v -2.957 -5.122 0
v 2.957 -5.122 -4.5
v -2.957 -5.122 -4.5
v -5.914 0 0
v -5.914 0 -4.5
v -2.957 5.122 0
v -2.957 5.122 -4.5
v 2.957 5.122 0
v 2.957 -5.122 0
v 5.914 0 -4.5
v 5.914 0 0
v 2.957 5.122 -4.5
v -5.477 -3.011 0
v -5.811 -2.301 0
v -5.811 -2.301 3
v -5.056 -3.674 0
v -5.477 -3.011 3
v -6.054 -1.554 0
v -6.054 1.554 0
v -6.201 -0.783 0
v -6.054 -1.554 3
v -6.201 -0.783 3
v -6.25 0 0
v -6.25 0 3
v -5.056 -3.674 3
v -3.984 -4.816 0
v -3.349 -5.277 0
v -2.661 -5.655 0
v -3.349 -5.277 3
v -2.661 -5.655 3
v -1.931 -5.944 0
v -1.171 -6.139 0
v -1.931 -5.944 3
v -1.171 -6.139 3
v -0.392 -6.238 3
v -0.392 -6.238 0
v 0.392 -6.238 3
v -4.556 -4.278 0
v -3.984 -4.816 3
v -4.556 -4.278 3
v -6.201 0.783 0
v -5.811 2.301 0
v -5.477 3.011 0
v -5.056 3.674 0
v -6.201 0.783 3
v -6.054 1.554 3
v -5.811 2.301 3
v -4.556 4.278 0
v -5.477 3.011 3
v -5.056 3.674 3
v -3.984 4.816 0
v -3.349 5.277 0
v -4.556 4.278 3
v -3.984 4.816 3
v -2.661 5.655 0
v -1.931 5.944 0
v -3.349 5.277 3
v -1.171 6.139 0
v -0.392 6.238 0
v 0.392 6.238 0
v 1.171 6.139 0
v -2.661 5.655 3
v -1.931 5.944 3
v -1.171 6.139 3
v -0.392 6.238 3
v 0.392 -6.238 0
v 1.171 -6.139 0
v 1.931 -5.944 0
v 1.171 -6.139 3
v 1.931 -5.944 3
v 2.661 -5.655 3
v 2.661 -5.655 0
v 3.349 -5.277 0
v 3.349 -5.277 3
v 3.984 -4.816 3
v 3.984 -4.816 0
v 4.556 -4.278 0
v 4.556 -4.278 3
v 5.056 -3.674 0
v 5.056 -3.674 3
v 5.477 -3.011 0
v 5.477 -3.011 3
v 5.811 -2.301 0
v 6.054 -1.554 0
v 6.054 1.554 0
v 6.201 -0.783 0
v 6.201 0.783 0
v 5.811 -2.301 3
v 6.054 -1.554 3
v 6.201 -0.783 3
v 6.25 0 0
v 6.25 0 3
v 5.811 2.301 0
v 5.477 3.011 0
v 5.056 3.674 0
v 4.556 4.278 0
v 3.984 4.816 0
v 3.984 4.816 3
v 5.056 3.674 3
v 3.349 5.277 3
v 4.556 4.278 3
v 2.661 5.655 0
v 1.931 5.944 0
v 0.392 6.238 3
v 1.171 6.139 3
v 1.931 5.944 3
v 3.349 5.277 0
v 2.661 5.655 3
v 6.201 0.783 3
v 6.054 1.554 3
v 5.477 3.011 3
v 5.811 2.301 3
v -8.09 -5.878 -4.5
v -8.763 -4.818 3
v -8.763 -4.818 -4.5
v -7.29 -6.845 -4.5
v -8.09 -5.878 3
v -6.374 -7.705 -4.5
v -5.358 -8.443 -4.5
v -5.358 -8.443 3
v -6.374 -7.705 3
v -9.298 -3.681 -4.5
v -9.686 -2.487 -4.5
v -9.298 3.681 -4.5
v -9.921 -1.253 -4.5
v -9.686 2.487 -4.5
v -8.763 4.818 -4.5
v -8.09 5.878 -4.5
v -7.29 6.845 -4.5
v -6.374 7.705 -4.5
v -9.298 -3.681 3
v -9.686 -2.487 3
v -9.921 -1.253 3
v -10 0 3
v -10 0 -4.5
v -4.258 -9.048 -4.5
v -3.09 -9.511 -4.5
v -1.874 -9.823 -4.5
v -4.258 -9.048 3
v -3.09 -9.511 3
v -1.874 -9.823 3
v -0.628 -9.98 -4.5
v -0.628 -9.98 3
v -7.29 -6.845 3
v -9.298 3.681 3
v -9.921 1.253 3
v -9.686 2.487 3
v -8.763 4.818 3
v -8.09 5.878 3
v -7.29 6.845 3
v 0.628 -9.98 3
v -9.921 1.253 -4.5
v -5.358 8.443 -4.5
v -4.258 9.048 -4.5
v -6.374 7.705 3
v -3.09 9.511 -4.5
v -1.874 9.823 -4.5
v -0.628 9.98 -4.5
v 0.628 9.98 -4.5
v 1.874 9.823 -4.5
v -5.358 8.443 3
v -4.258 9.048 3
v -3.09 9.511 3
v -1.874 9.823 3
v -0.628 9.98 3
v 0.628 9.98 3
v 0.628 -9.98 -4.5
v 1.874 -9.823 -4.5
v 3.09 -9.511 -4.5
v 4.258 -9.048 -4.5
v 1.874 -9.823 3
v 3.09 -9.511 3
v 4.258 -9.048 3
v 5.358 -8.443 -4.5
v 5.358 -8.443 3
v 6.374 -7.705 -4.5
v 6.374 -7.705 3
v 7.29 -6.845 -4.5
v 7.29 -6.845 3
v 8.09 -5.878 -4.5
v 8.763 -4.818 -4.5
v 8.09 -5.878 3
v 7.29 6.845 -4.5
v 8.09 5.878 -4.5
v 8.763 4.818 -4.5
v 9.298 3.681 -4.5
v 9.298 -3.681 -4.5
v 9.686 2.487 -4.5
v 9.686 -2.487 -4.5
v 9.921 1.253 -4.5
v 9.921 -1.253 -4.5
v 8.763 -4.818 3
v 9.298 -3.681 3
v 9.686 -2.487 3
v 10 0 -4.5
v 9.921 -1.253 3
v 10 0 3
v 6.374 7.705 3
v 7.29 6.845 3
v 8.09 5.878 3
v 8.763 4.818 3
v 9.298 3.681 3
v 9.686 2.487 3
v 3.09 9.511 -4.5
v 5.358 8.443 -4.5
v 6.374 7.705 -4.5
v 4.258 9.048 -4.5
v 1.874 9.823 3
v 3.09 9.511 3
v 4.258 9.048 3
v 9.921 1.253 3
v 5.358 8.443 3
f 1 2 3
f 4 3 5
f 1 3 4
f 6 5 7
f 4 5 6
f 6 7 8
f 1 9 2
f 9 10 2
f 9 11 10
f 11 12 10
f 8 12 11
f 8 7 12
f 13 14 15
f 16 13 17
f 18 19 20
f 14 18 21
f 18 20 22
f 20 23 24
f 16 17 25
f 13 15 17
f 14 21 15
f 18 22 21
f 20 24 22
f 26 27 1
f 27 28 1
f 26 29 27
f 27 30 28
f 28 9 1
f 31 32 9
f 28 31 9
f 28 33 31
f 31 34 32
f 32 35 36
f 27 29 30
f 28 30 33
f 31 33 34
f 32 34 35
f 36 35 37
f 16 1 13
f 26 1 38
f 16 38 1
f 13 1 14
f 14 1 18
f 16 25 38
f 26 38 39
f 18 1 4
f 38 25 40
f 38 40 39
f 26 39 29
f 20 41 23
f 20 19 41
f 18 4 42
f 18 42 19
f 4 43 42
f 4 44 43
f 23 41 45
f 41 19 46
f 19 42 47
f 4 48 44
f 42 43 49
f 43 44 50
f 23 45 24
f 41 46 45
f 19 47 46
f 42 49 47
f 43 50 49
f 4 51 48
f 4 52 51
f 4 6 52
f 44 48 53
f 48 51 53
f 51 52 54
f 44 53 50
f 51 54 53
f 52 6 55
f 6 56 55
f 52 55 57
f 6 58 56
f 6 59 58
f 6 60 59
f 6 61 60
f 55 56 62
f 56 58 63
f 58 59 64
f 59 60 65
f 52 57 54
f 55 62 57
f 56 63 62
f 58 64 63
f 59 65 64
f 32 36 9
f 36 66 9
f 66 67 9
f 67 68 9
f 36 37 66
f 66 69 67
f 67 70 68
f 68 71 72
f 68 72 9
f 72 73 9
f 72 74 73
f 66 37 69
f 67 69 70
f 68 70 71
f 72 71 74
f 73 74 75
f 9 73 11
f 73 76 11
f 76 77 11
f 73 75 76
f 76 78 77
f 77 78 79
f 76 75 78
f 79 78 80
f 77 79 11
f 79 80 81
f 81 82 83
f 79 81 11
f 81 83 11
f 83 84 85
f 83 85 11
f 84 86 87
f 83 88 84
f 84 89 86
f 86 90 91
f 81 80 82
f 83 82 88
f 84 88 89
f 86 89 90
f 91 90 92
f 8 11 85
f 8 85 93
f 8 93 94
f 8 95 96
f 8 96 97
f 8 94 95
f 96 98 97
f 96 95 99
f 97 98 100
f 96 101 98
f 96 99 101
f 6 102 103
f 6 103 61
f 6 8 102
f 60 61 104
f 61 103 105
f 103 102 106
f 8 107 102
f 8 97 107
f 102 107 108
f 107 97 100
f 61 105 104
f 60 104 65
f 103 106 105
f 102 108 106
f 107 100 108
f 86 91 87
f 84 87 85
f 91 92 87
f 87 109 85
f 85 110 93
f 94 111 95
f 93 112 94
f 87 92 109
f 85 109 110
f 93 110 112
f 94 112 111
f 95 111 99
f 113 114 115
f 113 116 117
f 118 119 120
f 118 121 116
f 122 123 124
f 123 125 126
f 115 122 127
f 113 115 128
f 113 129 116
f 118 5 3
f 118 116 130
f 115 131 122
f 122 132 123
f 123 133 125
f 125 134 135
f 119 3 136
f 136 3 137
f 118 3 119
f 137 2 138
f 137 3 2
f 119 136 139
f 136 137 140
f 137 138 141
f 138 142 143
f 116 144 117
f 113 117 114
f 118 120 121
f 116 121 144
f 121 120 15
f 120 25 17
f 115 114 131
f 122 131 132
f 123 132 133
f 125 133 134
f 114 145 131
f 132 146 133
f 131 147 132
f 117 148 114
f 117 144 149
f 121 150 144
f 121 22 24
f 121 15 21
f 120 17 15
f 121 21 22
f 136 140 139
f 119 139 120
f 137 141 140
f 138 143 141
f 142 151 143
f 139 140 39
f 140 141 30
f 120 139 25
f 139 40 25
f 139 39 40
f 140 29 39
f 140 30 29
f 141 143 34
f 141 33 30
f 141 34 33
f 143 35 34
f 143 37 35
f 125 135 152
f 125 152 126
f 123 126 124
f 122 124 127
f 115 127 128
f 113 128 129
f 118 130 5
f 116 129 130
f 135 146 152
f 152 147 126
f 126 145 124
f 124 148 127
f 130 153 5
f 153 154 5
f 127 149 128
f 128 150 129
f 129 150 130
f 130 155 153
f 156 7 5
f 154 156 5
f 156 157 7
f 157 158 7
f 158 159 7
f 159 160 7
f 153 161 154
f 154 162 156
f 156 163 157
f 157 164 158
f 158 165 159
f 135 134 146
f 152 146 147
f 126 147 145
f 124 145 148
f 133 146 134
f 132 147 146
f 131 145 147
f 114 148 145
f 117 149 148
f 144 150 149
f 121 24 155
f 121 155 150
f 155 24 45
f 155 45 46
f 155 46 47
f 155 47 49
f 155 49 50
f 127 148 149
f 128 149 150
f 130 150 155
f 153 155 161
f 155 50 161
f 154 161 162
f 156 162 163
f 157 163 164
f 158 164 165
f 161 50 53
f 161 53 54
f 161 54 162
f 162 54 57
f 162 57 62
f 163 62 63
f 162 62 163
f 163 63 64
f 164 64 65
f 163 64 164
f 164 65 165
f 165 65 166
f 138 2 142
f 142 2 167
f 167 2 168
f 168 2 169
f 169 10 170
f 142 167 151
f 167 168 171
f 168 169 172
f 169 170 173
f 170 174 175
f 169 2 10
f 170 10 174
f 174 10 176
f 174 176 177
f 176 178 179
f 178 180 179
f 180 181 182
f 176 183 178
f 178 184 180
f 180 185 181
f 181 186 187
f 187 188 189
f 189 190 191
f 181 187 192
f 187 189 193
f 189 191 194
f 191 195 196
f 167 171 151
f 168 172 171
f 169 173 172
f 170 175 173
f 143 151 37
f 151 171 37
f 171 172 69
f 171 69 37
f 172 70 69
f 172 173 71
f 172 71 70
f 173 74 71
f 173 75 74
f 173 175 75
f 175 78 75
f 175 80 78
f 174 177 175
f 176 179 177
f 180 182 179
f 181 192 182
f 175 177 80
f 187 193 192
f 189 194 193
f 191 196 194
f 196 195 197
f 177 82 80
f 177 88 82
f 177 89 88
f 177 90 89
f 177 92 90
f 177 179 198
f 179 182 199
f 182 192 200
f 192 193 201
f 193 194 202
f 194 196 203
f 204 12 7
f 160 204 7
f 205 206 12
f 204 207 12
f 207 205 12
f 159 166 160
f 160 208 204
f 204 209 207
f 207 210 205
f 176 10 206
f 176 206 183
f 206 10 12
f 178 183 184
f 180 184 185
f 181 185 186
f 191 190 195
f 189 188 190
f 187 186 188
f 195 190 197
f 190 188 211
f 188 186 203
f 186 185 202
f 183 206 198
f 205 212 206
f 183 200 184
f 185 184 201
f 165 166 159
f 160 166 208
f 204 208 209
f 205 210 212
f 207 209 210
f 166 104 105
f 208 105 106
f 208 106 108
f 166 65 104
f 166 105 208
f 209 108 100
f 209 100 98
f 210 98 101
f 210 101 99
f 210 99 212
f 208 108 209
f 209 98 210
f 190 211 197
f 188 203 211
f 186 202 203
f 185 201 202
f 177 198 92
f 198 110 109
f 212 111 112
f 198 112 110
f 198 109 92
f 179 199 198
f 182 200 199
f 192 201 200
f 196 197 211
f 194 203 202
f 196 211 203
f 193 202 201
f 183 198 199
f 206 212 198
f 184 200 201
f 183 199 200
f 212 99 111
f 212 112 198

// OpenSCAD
$fn = 50;

difference() {
	union() {
		translate(v = [0, 0, -4.5]) {
			cylinder(h = 7.5, r = 10.0);
		}
	}
	union() {
		translate(v = [0, 0, 0]) {
			rotate(a = [0, 0, 0]) {
				difference() {
					union() {
						translate(v = [0, 0, -5]) {
							linear_extrude(height = 5) {
								polygon(points = [[5.914249999999999, 0.0], [2.957125, 5.1218907443321156], [-2.9571249999999982, 5.1218907443321156], [-5.914249999999999, 7.242867331857232e-16], [-2.9571250000000022, -5.121890744332115], [2.9571249999999956, -5.121890744332118]]);
							}
						}
					}
					union();
				}
			}
		}
		#cylinder(h = 3, r = 6.25);
		#translate(v = [0, 0, -100.0]) {
			cylinder(h = 200, r = 3.25);
		}
	}
}
